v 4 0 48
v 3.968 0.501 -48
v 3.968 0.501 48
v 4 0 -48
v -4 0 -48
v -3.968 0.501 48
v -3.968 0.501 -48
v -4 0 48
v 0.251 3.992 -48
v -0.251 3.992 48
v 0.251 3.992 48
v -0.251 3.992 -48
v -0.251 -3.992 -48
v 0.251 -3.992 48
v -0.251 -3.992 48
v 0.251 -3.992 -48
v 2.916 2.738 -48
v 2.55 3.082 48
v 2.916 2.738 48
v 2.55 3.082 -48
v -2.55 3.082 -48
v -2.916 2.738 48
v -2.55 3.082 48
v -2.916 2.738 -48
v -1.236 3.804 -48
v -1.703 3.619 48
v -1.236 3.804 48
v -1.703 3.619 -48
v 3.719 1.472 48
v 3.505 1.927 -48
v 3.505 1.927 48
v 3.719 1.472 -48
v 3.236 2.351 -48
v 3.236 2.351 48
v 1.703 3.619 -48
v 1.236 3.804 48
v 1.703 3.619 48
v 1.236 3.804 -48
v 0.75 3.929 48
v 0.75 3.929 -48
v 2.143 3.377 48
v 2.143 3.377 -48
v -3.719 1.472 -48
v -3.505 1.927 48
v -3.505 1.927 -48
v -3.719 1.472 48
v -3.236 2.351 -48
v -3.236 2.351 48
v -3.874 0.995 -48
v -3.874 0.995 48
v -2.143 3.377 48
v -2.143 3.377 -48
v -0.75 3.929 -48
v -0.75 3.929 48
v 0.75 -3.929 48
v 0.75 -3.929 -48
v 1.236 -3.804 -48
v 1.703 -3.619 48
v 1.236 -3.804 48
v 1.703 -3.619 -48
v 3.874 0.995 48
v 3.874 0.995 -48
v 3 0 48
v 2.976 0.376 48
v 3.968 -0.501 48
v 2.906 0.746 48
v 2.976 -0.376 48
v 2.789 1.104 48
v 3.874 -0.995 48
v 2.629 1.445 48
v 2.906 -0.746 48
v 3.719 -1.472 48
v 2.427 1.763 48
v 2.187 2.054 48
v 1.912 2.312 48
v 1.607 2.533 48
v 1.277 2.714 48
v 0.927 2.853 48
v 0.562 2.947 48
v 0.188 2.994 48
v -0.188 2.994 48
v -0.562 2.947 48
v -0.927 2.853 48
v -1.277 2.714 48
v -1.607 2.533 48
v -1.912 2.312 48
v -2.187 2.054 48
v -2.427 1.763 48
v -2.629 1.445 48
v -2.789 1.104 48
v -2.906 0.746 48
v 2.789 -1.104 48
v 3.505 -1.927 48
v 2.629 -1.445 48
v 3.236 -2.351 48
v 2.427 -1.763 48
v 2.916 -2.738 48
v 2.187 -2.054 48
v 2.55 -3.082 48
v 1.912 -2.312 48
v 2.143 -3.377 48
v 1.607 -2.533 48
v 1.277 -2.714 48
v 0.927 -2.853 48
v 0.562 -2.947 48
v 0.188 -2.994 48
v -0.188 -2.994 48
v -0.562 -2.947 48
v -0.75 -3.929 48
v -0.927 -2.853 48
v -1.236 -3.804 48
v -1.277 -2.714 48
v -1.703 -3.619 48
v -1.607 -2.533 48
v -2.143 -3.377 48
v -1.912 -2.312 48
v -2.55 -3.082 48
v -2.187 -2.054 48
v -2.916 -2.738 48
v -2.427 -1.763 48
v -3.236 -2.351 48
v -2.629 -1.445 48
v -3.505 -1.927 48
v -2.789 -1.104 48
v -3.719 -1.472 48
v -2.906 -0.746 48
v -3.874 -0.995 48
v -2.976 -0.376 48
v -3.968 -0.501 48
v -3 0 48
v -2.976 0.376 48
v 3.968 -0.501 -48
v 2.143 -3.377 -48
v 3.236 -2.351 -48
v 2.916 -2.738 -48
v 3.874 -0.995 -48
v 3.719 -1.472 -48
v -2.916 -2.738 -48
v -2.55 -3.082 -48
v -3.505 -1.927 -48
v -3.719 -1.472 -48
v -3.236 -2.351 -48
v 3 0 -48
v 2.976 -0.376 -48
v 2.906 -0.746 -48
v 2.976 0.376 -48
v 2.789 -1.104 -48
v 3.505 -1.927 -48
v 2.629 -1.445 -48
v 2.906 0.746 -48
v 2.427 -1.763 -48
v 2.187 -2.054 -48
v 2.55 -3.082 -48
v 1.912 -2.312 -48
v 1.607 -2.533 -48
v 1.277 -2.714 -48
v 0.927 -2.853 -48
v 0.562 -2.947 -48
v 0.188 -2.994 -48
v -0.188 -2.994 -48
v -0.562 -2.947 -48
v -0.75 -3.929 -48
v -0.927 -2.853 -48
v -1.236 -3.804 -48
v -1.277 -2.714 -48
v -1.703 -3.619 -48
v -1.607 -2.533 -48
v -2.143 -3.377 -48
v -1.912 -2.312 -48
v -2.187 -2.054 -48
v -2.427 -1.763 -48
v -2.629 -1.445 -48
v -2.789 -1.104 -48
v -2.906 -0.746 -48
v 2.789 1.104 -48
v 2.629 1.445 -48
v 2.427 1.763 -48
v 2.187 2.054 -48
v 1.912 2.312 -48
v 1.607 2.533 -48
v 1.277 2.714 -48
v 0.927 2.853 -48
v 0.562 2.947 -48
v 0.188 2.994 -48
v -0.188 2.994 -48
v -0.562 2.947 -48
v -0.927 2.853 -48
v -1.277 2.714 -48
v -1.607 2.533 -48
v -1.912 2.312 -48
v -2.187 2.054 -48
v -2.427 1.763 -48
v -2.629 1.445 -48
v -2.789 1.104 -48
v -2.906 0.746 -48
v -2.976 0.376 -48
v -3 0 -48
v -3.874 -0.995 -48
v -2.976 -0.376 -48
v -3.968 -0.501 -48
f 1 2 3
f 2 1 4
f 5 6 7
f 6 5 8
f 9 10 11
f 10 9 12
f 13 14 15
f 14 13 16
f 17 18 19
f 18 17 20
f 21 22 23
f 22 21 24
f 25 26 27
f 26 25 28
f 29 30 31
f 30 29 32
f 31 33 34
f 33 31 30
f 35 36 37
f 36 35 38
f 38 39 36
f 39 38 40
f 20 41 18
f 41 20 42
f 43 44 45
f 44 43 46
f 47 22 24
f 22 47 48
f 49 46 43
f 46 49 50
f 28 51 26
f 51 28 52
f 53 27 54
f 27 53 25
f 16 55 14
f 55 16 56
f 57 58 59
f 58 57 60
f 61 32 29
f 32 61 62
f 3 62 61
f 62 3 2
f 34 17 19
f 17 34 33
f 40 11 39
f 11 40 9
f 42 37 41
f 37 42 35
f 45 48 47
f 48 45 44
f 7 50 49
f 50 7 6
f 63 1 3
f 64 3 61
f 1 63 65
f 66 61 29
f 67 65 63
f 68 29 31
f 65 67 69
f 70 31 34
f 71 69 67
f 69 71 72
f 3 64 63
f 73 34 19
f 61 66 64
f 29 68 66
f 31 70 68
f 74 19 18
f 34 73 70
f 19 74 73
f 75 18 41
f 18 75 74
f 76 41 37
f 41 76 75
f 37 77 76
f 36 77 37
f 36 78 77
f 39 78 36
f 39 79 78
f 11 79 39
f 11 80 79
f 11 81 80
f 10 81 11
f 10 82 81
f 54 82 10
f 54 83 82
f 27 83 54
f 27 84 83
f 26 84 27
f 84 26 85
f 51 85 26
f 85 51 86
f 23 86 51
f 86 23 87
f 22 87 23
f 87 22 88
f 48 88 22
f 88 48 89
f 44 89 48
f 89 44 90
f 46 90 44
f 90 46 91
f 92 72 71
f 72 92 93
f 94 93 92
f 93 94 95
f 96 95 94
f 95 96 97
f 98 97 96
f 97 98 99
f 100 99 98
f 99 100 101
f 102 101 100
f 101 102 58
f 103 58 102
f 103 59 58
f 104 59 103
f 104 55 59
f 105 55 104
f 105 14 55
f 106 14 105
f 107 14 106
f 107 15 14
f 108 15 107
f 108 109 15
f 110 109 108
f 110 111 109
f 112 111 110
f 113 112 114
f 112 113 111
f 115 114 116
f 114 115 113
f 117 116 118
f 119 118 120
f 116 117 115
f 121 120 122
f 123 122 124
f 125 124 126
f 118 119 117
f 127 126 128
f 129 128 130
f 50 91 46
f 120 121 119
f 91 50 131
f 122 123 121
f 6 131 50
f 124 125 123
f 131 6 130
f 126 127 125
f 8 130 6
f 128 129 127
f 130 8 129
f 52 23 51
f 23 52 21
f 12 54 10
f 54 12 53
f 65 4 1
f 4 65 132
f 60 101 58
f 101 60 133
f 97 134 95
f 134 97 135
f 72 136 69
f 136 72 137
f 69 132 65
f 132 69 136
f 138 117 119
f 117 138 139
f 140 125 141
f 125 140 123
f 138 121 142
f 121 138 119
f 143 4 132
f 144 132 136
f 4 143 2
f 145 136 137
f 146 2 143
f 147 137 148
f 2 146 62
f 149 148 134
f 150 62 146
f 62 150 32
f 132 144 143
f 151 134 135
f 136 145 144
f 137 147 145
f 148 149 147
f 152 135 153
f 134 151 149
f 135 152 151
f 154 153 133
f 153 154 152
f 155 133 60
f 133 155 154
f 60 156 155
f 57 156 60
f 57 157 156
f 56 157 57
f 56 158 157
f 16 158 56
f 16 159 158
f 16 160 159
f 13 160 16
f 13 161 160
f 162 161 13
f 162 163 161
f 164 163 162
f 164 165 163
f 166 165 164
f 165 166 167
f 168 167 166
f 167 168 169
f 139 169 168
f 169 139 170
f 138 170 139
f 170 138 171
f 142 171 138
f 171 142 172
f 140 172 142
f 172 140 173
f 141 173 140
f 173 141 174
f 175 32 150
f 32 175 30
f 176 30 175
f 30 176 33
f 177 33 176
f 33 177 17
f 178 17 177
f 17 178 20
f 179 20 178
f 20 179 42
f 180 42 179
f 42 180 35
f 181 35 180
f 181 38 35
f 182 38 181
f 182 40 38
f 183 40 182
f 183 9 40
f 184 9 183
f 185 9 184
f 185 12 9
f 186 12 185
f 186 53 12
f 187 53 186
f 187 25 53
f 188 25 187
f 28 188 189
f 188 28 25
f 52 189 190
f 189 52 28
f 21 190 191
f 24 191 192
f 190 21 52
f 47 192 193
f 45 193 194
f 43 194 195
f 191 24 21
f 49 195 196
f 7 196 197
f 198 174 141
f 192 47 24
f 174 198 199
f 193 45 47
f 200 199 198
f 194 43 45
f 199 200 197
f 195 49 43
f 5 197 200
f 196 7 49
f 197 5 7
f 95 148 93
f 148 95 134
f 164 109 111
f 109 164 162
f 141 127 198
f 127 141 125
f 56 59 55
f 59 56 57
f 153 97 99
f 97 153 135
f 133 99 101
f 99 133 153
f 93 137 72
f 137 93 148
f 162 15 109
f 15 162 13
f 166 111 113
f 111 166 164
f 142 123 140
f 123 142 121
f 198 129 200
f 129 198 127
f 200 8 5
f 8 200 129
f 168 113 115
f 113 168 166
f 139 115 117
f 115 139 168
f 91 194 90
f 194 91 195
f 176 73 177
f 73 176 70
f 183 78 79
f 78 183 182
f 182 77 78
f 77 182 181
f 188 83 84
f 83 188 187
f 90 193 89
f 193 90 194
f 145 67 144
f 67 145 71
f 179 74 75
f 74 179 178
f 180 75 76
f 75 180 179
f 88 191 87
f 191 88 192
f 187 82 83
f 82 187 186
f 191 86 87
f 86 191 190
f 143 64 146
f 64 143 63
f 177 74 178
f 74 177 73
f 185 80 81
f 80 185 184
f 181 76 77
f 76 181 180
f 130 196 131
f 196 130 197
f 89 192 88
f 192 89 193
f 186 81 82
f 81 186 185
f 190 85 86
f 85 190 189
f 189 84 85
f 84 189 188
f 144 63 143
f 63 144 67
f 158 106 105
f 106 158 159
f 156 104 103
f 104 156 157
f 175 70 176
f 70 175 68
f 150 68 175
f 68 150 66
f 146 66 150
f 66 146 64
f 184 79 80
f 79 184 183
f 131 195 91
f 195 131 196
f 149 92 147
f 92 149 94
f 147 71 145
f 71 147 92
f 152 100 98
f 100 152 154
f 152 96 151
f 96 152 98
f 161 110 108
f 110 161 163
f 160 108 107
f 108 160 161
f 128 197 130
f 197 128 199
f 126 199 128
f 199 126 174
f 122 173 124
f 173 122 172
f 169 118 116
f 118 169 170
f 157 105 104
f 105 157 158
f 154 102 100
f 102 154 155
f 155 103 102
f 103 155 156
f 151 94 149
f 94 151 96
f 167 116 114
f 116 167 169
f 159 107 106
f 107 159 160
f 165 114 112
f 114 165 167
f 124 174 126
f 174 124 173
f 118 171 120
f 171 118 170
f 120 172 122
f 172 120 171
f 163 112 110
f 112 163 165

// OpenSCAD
$fn = 50;


difference() {
	union() {
		translate(v = [0, 0, -48.0000000000]) {
			cylinder(h = 96, r = 4.0000000000);
		}
	}
	union() {
		translate(v = [0, 0, -100.0000000000]) {
			cylinder(h = 200, r = 3);
		}
	}
}
